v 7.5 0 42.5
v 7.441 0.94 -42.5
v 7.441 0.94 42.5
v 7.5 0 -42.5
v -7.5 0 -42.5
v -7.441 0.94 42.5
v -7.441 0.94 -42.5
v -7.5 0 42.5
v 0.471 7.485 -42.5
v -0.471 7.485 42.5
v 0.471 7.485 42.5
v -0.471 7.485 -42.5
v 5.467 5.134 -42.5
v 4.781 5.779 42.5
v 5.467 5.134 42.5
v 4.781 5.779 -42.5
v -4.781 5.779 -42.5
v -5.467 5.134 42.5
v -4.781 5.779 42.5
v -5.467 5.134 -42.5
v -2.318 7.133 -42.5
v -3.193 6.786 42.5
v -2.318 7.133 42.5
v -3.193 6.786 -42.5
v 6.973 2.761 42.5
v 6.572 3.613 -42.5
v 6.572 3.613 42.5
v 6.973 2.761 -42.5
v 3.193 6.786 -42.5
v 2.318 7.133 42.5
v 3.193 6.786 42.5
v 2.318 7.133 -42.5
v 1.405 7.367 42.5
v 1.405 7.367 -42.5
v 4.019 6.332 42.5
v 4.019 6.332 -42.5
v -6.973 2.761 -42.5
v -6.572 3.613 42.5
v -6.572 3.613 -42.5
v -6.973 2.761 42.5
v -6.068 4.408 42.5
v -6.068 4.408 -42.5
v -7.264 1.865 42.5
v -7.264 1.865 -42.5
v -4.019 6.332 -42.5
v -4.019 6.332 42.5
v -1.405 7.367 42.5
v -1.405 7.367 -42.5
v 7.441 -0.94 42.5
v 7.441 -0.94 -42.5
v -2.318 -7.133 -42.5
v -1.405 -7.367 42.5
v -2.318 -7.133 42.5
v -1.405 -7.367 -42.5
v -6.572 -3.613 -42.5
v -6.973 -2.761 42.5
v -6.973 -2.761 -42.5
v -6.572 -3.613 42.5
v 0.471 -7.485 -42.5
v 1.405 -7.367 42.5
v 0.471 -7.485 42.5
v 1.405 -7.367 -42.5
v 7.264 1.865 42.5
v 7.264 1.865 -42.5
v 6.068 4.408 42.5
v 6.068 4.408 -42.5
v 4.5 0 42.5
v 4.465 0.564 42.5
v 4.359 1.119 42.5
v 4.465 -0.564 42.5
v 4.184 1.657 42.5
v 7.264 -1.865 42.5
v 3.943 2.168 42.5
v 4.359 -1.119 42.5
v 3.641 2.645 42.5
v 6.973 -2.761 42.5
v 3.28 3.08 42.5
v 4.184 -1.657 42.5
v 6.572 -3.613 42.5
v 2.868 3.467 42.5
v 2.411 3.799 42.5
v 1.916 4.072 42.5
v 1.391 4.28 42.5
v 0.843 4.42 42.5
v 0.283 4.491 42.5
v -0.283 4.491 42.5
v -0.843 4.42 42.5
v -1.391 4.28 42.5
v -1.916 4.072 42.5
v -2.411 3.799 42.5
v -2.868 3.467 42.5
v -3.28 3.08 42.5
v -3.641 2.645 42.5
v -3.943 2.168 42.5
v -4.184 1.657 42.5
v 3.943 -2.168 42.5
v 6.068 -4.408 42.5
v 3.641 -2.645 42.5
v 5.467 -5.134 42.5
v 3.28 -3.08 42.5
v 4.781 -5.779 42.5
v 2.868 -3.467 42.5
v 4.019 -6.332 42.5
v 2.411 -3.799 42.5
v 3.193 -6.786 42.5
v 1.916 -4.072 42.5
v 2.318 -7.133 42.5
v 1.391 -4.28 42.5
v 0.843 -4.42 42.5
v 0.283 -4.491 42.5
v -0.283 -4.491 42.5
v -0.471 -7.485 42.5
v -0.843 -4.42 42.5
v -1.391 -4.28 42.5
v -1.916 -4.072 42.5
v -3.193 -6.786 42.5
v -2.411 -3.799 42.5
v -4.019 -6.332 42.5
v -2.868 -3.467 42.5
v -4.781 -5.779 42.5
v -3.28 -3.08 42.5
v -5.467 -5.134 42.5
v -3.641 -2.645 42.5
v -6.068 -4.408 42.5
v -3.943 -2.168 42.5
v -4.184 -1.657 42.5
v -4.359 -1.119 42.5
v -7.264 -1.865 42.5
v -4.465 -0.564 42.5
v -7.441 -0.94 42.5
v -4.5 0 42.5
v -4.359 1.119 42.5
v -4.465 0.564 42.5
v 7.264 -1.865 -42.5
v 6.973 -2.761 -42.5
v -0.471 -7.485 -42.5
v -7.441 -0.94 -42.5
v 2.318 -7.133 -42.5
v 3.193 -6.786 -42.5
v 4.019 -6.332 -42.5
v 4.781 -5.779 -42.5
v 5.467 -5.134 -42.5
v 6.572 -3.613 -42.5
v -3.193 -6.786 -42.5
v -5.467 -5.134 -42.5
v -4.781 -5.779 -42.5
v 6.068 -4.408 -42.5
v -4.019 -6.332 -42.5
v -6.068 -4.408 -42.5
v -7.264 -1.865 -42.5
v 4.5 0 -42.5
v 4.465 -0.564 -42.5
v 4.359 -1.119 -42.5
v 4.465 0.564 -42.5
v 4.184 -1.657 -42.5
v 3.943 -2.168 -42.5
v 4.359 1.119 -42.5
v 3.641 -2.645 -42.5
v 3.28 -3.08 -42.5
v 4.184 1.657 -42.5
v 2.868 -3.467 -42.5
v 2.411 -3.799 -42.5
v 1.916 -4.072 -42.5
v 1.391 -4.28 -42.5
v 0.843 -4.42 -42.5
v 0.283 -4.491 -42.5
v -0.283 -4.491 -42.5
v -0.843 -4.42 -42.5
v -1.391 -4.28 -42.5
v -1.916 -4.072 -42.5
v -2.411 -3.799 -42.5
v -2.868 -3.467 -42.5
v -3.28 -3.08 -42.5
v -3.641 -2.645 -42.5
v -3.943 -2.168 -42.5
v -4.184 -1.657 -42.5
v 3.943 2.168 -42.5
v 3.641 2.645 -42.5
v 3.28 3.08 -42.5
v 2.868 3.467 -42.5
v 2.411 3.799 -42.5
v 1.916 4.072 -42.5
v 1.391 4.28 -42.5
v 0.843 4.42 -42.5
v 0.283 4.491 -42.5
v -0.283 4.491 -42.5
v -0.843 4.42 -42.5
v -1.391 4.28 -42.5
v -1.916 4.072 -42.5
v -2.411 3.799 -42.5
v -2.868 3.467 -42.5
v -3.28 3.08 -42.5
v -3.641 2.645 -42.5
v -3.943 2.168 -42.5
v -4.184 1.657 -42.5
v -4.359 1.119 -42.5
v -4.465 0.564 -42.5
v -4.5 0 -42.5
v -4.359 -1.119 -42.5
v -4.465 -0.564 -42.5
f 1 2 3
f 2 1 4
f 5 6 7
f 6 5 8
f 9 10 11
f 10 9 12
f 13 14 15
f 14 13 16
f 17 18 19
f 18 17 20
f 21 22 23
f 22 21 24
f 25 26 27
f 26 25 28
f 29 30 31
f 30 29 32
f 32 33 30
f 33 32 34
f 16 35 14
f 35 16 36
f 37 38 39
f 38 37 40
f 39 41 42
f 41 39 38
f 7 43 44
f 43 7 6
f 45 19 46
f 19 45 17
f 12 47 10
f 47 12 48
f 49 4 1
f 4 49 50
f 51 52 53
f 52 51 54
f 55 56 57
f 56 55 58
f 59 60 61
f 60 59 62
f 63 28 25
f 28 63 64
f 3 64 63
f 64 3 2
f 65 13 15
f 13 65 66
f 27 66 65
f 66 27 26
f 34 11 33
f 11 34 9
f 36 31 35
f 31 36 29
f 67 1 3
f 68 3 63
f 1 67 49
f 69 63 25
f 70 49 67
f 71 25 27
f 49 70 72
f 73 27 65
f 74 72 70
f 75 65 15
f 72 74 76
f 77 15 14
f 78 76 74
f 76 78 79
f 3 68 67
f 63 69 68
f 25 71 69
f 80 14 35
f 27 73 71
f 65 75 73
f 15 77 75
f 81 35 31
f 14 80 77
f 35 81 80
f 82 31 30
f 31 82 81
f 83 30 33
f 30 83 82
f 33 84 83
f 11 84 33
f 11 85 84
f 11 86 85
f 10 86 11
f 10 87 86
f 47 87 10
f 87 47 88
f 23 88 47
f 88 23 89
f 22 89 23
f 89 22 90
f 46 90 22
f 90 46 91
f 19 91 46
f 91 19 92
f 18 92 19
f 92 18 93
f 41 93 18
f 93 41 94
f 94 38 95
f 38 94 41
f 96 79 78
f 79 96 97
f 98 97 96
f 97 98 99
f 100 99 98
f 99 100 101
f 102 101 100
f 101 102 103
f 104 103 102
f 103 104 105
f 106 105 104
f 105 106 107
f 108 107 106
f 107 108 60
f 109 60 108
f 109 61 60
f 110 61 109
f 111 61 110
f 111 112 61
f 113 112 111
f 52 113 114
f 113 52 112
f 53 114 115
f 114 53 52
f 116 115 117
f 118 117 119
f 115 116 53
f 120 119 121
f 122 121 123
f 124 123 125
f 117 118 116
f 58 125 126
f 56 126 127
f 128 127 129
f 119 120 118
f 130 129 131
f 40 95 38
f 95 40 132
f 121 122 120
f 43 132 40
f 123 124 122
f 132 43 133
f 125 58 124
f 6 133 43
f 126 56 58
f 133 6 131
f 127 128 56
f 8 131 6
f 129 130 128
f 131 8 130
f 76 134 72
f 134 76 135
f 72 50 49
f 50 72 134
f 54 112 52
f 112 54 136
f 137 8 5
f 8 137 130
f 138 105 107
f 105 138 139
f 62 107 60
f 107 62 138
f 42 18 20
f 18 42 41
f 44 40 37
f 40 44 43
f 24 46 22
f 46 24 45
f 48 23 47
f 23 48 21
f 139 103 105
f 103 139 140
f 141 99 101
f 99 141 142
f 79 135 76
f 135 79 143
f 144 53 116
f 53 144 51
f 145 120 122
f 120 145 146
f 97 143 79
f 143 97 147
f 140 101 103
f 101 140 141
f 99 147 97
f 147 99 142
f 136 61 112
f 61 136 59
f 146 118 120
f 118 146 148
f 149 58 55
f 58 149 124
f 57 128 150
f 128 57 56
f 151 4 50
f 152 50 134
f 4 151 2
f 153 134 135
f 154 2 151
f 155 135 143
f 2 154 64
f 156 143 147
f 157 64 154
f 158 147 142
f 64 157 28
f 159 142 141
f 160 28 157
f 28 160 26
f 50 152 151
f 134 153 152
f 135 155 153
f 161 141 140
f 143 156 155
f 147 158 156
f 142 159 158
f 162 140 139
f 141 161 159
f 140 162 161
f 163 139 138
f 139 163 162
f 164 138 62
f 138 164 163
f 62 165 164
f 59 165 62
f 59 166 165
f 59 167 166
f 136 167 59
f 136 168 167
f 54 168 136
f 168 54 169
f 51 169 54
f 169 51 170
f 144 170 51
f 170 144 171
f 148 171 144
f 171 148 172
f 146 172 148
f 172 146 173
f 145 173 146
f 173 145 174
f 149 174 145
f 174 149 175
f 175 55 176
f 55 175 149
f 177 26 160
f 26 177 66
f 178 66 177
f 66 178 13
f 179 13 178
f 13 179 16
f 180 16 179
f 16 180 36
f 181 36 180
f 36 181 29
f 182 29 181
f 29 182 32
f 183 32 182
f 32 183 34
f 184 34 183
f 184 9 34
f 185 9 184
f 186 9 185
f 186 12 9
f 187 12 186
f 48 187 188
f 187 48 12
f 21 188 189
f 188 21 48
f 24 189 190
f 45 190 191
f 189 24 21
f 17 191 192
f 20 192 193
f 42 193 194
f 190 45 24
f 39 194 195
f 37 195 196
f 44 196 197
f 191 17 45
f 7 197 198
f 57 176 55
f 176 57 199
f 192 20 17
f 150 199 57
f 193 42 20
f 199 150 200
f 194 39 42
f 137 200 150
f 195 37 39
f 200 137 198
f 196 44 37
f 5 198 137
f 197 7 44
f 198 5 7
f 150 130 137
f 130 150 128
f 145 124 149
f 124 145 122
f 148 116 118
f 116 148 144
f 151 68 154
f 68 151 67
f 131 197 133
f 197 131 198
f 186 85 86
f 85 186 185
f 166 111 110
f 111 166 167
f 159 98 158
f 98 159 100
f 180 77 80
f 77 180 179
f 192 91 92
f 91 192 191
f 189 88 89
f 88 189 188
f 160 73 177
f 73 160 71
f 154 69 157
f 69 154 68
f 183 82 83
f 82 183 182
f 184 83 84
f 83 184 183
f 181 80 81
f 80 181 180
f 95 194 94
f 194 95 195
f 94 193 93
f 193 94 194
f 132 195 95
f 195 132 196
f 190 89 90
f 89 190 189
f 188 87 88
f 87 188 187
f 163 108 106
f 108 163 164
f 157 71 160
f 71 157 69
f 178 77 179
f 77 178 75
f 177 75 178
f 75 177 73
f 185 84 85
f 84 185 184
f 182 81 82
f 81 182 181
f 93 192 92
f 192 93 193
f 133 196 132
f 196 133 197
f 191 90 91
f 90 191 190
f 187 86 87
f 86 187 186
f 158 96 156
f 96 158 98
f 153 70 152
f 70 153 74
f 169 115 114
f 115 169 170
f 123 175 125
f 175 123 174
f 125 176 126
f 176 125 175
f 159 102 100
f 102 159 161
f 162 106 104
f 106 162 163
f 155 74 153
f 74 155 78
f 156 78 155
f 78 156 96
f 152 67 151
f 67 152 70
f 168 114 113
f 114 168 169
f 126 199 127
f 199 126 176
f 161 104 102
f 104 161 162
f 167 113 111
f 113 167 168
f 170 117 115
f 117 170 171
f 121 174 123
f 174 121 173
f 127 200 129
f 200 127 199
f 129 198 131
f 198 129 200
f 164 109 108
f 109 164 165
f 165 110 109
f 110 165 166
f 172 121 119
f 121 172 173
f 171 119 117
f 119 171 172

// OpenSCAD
$fn = 50;


difference() {
	union() {
		translate(v = [0, 0, -42.5000000000]) {
			cylinder(h = 85, r = 7.5000000000);
		}
	}
	union() {
		translate(v = [0, 0, -100.0000000000]) {
			cylinder(h = 200, r = 4.5000000000);
		}
	}
}
